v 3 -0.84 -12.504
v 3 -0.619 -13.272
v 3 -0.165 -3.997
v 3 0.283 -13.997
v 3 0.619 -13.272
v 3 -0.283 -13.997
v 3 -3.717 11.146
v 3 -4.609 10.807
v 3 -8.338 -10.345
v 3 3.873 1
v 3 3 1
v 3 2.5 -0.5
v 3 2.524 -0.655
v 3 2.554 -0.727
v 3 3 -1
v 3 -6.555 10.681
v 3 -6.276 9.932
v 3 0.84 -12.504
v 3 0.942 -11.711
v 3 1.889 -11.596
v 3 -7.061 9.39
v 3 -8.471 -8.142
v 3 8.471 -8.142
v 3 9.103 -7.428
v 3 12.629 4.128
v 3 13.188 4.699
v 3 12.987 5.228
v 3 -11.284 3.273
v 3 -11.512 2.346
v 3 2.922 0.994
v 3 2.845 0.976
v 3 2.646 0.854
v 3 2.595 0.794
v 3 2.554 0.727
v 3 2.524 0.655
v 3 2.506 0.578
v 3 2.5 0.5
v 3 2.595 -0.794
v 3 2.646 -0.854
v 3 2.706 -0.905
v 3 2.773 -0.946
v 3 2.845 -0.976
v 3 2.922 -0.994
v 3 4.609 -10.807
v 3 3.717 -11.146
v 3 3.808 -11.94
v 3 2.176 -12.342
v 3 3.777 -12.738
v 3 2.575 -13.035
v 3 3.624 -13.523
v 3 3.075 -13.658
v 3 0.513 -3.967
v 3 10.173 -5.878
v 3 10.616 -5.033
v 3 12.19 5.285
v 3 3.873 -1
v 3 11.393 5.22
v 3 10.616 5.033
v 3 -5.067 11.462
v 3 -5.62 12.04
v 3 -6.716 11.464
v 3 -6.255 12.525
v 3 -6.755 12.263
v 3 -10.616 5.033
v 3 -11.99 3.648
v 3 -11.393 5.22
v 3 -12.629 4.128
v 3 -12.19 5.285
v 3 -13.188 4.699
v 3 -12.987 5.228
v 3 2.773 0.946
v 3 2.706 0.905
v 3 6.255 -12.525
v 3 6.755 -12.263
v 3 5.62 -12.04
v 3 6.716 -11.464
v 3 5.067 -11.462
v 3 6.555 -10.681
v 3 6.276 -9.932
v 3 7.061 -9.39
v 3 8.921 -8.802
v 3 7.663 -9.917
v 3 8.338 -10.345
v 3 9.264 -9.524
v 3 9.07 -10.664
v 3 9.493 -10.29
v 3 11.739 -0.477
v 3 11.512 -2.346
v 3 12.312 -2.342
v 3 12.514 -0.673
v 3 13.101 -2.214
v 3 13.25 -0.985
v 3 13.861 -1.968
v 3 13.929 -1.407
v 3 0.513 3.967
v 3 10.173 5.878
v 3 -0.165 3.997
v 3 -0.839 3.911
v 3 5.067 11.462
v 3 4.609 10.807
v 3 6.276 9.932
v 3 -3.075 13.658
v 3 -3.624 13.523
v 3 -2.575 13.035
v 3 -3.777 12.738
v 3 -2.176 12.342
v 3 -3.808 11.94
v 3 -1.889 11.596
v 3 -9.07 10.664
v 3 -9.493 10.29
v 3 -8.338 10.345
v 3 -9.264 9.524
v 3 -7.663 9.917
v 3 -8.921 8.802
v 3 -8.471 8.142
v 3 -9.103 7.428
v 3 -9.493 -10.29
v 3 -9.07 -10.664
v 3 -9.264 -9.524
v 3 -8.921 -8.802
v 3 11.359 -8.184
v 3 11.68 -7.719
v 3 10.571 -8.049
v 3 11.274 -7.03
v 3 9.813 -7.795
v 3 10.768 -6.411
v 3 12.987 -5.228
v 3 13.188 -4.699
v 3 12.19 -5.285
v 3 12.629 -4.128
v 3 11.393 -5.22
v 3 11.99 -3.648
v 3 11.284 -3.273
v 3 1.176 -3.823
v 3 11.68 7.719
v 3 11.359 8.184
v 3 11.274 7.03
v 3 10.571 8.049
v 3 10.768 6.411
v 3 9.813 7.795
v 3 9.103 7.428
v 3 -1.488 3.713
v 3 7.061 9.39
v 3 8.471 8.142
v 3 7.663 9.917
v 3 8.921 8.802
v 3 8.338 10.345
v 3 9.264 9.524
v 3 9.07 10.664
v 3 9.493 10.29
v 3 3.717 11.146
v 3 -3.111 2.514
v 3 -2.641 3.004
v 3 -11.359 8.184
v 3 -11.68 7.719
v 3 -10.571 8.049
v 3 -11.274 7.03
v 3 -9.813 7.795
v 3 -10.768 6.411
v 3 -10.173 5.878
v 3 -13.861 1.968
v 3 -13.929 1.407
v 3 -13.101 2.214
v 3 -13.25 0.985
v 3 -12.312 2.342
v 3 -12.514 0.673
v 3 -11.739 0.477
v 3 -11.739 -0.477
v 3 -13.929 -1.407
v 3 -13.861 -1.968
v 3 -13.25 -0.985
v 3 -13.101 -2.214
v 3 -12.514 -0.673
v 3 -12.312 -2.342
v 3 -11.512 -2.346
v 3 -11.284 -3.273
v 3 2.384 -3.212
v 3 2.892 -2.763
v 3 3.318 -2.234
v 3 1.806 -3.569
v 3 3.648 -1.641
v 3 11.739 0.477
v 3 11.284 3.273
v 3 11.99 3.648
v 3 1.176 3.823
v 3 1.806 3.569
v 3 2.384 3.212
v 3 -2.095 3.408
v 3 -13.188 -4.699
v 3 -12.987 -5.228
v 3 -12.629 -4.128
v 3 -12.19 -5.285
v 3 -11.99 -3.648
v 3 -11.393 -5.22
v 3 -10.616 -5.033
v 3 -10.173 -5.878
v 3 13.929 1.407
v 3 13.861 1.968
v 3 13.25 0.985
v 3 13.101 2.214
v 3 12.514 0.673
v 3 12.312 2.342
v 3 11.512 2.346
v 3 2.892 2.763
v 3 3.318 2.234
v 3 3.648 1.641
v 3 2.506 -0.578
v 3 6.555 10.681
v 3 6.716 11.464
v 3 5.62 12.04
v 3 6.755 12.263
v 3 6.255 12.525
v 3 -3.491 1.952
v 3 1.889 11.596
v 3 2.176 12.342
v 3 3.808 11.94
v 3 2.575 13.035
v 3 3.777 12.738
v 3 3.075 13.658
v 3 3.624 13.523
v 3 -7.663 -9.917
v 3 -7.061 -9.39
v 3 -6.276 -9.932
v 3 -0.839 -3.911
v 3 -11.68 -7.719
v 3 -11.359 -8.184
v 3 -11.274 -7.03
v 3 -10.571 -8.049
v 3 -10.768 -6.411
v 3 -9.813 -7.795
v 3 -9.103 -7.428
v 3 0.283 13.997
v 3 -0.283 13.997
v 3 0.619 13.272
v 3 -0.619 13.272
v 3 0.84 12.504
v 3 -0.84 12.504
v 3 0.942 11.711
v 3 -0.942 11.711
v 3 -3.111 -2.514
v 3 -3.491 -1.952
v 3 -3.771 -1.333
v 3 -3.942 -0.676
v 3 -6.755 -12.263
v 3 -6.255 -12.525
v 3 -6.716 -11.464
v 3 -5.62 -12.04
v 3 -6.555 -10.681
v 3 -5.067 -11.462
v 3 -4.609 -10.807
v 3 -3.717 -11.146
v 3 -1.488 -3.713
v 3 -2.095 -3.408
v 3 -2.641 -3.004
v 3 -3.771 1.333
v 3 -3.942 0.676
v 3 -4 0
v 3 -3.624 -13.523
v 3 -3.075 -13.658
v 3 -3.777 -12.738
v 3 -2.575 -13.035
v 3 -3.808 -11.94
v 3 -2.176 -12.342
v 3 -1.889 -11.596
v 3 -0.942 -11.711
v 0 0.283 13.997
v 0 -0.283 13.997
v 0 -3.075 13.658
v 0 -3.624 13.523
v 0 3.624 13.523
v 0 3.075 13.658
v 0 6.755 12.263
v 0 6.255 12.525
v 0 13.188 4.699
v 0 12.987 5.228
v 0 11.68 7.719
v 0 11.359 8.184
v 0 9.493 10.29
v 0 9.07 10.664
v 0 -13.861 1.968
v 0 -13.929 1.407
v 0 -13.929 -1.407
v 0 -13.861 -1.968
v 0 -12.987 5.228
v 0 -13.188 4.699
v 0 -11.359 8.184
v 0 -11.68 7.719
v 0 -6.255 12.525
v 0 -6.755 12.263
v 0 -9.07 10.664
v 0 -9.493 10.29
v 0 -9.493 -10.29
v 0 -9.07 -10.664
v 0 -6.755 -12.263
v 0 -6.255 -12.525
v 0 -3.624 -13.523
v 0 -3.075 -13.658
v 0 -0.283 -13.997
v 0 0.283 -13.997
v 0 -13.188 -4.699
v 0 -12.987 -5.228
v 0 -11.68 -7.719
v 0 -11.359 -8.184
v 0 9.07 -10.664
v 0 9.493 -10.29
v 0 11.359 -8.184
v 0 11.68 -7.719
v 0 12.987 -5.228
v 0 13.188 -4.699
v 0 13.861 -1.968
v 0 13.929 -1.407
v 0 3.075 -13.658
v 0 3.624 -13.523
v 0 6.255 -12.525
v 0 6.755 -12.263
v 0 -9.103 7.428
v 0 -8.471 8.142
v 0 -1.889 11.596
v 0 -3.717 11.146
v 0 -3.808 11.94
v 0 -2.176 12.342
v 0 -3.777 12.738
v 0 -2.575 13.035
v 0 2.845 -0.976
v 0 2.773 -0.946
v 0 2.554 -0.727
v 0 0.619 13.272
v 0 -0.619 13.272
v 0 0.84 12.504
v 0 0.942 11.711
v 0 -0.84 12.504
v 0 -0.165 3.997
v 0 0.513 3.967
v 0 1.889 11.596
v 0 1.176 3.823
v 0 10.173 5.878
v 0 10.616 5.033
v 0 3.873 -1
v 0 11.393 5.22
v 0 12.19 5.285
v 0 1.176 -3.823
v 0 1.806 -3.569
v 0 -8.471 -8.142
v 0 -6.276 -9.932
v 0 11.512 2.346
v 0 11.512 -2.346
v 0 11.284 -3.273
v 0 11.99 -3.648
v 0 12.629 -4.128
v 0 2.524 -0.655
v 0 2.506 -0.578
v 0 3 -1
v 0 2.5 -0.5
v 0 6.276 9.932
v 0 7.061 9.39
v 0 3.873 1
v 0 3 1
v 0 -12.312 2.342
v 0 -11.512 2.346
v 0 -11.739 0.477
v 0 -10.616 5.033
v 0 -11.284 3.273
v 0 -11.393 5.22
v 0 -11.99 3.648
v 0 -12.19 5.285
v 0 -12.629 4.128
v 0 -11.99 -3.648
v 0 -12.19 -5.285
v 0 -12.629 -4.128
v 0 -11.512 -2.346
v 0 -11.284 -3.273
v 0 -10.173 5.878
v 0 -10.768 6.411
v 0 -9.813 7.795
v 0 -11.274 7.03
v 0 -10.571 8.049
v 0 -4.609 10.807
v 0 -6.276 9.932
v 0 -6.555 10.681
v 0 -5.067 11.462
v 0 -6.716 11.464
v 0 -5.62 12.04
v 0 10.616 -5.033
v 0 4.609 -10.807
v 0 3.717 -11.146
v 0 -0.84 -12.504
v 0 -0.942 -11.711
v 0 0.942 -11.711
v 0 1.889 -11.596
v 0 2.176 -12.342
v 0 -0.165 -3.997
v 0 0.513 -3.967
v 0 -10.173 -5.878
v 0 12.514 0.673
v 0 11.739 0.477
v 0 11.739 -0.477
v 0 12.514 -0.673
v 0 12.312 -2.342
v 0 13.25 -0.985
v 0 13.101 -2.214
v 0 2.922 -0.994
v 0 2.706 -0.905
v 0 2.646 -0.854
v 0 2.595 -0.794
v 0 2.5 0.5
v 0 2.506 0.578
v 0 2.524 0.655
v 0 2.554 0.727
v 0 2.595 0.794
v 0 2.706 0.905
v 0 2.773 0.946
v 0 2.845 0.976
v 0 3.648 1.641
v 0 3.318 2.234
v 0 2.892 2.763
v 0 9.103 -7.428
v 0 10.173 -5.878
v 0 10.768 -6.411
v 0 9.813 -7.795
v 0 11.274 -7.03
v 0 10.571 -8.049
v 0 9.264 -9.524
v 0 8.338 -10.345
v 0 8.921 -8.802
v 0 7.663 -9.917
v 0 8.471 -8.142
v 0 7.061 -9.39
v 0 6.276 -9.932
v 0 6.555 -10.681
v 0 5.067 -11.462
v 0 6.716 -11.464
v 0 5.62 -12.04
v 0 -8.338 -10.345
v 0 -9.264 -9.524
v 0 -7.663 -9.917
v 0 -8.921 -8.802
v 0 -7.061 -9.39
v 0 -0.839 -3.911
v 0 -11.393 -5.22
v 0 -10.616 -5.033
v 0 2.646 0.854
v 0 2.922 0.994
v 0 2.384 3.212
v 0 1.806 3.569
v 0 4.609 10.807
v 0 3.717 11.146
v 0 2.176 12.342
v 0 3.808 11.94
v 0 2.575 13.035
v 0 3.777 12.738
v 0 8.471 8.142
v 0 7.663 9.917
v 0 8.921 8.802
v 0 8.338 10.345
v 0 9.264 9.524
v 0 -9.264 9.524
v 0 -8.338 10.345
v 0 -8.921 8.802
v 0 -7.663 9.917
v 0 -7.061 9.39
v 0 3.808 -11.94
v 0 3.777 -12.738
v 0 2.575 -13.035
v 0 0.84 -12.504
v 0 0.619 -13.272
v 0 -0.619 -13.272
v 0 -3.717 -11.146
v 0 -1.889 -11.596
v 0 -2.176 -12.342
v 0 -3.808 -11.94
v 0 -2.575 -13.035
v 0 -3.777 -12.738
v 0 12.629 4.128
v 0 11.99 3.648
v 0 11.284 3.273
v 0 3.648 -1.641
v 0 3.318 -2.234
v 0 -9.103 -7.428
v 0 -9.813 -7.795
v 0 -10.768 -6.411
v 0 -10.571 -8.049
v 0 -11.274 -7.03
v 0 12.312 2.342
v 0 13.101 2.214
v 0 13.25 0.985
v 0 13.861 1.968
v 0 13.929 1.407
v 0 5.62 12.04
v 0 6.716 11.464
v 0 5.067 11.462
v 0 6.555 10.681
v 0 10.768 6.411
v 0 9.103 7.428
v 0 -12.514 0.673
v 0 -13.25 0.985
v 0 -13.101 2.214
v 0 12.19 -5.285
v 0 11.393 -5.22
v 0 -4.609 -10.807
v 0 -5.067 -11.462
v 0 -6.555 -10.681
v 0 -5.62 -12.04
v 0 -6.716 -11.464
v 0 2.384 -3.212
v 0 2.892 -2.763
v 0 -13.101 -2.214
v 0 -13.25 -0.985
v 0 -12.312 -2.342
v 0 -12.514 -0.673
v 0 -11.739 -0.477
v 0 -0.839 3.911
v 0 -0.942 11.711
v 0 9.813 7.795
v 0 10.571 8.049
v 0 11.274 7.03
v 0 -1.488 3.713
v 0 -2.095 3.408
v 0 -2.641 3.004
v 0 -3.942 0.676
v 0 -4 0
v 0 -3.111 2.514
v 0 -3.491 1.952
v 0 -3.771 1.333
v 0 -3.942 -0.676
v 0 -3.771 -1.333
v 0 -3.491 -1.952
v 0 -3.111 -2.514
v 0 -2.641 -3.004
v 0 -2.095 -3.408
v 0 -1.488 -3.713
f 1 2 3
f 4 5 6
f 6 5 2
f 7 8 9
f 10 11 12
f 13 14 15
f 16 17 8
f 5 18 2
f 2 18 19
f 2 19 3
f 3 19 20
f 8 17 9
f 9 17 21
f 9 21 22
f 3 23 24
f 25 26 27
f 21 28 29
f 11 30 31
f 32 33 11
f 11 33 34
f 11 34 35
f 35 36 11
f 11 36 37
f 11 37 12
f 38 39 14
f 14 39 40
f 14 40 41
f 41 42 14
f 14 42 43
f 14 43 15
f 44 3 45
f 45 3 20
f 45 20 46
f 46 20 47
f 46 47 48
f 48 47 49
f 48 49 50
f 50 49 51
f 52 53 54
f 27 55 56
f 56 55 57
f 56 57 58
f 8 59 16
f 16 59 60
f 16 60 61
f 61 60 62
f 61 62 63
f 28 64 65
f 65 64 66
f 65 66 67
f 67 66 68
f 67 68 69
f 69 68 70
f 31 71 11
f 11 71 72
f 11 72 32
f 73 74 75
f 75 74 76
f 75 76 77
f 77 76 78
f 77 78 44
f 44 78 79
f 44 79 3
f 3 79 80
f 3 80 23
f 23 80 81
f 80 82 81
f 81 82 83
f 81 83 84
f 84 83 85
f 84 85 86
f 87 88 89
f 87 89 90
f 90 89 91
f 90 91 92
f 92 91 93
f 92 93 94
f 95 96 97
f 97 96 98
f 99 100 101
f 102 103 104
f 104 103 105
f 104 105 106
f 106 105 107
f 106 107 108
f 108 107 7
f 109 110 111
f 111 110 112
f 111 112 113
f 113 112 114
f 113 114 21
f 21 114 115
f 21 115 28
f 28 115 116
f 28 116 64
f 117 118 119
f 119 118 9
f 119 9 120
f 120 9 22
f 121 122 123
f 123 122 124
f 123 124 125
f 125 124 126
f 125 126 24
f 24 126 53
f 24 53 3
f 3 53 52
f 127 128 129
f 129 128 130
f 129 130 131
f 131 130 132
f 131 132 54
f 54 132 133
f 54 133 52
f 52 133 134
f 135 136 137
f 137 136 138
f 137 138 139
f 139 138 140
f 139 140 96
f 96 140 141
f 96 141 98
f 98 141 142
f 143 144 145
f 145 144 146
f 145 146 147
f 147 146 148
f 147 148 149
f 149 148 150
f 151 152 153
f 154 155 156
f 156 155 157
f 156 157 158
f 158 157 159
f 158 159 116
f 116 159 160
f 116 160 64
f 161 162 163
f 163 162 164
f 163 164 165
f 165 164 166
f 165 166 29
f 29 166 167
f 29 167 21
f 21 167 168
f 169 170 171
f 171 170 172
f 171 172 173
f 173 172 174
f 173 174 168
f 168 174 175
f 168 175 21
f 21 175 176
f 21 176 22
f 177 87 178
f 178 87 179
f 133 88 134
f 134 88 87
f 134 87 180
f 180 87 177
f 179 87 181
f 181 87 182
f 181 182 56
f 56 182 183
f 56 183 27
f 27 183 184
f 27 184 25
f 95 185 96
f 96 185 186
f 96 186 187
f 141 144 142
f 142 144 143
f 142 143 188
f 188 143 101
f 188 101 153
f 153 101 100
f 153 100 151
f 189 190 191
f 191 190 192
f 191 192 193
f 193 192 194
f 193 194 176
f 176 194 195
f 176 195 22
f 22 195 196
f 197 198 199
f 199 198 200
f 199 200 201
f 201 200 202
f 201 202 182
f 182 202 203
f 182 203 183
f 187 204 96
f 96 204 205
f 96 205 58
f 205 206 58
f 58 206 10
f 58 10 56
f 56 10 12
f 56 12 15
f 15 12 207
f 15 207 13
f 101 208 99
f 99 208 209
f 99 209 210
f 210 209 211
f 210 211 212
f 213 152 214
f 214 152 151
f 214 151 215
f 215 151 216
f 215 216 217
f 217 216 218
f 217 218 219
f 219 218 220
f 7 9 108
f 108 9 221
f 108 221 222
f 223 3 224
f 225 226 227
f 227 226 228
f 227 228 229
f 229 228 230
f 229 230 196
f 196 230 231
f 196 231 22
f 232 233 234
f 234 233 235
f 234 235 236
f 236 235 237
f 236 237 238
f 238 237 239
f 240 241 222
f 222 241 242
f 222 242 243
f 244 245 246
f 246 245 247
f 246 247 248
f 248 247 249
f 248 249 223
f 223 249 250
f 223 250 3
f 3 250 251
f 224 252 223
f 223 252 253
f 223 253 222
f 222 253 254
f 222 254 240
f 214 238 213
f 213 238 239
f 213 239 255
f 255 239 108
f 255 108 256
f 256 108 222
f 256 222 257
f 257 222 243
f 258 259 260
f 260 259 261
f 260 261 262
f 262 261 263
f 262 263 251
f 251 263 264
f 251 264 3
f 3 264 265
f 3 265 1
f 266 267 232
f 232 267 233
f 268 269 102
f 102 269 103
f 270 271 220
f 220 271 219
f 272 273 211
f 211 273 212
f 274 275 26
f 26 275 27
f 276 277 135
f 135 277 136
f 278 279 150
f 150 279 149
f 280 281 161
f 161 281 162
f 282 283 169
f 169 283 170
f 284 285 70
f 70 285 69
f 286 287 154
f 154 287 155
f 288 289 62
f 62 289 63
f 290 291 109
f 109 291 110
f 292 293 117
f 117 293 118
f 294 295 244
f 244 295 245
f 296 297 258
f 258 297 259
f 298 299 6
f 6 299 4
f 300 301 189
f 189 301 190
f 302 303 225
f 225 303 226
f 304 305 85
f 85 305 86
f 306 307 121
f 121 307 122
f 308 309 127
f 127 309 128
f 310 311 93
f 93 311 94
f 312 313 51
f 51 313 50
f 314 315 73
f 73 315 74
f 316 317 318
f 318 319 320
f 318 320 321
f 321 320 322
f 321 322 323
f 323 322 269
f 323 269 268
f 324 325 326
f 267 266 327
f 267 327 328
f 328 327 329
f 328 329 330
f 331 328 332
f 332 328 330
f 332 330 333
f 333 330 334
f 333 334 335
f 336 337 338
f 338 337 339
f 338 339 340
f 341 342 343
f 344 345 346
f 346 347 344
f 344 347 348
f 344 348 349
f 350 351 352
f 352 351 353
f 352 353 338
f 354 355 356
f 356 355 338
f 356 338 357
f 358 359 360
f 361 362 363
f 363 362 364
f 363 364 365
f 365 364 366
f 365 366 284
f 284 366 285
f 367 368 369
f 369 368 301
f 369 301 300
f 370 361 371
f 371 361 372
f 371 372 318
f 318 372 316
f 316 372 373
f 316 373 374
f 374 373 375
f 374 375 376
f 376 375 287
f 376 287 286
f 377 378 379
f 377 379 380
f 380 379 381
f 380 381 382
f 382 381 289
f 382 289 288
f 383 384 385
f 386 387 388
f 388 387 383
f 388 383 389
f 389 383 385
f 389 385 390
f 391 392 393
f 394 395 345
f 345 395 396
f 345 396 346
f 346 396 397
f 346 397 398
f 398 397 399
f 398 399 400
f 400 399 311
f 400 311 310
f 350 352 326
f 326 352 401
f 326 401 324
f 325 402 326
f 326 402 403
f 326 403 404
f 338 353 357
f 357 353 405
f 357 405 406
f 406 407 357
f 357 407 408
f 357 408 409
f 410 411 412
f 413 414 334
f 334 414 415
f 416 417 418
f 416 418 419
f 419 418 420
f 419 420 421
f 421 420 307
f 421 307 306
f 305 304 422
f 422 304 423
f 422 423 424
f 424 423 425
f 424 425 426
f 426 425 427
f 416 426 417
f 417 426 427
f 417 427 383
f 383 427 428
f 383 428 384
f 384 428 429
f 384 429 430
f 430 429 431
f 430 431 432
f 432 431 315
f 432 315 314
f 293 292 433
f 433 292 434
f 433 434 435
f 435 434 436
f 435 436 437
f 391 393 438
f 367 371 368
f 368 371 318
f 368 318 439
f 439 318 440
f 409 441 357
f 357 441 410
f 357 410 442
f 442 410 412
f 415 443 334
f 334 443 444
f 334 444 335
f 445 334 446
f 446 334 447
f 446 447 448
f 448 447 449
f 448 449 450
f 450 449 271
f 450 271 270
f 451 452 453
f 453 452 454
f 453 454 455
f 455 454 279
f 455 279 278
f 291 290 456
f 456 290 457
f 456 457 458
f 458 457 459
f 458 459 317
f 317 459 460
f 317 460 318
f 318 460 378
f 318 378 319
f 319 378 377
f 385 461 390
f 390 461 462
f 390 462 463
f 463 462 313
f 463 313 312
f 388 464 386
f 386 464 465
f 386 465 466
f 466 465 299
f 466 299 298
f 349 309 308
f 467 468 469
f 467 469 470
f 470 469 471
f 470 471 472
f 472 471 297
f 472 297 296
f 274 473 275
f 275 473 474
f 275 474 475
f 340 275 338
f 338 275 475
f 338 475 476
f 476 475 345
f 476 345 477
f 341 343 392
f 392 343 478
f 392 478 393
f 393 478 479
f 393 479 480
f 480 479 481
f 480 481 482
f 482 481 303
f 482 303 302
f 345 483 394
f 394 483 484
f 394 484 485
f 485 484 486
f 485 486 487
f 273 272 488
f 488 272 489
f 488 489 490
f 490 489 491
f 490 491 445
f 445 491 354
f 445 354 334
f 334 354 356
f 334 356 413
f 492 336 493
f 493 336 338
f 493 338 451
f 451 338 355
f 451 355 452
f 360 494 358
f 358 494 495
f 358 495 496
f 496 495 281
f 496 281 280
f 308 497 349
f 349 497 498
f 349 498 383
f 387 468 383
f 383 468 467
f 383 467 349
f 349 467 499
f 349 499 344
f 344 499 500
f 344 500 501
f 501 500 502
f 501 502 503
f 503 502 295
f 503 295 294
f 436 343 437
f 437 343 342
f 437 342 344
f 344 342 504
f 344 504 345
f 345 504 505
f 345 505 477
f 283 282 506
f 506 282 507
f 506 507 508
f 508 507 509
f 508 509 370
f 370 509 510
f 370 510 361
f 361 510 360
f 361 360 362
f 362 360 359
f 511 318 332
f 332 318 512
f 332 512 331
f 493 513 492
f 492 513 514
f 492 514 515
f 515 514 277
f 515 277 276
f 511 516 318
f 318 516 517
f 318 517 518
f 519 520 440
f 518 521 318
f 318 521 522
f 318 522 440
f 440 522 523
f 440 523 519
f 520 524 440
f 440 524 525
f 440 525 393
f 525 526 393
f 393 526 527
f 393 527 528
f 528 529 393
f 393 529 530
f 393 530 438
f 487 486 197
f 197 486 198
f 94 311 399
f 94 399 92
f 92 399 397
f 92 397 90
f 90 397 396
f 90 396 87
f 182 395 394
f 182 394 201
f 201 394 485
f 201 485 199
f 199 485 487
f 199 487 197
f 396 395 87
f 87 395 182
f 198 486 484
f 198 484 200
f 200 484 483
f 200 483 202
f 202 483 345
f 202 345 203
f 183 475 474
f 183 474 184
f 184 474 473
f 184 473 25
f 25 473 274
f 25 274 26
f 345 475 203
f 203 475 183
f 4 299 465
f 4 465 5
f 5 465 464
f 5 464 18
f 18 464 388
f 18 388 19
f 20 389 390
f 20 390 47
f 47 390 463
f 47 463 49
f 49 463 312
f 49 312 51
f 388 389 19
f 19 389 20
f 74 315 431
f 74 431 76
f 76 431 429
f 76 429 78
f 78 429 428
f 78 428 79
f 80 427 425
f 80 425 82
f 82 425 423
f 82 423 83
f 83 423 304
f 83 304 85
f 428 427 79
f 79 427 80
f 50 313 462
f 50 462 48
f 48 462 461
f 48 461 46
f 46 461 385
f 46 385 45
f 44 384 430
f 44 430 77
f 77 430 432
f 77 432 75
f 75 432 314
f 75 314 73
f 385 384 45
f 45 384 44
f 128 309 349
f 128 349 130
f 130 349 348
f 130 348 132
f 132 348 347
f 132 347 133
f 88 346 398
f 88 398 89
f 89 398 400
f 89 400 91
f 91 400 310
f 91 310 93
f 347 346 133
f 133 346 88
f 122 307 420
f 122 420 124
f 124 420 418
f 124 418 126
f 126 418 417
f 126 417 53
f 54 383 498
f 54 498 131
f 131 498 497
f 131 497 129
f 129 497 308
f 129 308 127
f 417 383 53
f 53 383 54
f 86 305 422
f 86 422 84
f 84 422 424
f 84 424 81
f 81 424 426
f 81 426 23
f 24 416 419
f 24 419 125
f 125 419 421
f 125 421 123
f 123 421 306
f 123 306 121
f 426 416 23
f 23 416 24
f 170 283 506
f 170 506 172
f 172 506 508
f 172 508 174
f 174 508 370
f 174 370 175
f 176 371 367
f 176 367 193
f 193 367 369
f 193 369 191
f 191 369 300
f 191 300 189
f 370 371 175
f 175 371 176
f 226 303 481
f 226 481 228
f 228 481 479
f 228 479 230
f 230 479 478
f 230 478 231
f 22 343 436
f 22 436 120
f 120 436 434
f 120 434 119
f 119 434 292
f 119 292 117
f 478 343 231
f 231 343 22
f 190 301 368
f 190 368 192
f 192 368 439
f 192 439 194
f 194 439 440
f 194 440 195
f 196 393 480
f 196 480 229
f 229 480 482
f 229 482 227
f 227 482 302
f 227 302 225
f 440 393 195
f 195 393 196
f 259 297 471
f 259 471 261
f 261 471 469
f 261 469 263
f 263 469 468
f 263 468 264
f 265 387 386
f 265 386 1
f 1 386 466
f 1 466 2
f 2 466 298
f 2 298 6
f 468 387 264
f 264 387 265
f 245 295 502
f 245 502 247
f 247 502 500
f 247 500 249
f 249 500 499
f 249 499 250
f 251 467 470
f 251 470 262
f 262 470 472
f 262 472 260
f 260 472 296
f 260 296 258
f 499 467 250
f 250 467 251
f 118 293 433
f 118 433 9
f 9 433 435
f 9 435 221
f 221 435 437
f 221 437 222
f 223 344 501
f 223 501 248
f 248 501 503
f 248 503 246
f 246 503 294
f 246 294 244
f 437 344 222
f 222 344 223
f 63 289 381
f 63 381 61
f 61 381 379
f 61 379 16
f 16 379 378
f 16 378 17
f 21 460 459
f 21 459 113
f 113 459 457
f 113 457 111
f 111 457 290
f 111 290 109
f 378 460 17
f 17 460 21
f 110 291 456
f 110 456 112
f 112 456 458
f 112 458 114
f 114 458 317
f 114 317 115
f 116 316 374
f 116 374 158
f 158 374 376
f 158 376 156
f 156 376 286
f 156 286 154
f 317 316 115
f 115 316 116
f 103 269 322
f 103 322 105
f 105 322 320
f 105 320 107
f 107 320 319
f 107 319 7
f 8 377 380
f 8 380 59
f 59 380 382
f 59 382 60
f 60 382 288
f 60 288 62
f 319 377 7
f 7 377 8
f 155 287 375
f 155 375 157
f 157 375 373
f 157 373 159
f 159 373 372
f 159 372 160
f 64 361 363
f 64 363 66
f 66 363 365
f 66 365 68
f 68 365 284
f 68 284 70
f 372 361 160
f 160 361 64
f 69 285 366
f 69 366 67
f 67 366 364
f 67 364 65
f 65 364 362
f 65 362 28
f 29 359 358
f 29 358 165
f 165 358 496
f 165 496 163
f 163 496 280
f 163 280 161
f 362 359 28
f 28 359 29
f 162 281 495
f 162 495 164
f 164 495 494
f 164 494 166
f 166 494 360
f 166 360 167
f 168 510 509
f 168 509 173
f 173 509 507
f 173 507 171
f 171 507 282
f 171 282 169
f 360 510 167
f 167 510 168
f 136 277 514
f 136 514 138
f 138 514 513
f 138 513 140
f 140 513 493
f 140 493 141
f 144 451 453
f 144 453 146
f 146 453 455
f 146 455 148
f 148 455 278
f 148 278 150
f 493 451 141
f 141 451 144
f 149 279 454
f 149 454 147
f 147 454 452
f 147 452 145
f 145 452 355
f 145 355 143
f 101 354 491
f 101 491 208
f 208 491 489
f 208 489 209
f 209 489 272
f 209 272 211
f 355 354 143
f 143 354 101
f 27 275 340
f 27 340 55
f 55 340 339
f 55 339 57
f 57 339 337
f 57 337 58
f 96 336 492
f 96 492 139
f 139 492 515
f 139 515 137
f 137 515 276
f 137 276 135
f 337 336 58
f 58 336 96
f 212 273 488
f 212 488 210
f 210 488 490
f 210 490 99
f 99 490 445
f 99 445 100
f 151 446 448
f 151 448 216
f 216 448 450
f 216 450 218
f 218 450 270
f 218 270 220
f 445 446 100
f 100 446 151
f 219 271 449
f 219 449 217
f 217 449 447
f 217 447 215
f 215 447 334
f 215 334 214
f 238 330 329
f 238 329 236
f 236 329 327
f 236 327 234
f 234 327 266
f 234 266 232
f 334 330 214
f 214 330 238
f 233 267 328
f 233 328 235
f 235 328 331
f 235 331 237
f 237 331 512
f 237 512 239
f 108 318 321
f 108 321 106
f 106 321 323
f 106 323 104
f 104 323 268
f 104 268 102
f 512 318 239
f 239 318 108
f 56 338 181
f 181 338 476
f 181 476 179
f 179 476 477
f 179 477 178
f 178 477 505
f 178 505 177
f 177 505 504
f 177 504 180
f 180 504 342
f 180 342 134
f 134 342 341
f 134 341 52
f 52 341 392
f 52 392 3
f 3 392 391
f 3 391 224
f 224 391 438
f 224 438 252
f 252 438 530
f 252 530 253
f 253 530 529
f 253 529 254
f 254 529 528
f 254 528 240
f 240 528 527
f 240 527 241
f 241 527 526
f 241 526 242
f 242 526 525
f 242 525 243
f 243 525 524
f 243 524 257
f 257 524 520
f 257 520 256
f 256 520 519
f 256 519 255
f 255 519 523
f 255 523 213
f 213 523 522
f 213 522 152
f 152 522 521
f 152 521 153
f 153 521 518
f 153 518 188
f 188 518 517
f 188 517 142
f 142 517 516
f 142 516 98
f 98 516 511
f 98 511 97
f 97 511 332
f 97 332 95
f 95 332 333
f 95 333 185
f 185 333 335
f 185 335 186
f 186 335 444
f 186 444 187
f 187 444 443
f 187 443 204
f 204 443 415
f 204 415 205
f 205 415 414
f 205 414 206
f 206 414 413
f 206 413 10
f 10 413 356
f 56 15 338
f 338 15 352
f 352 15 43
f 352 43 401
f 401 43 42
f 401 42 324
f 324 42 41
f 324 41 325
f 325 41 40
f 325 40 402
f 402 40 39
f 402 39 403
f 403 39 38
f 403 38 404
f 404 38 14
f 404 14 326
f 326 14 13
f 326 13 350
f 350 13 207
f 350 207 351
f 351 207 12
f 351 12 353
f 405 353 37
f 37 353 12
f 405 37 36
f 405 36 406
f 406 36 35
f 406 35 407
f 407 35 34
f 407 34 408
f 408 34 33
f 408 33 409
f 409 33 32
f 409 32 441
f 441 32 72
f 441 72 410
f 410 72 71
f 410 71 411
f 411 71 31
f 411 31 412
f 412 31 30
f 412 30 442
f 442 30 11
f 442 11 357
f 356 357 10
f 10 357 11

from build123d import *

# Parameters (mm, degrees)
BASPROSKE_W                 = 3
BASPROSKE_H                 = 14
TOOTHCUT_DEPTH              = 21.024984395
TEETHCUTS_COUNT             = 26
TEETHCUTS_ANGLE             = 346.153846154
BORSKE_R                    = 4
BORE_DEPTH                  = 50.0000508
DODANIE_WYCI_GNI_CIE1_DEPTH = 3


with BuildPart() as part:
    # BasProSke → Base-Revolve (revolve)
    with BuildSketch(Plane(origin=(0, 0, 0), x_dir=(1, 0, 0), z_dir=(0, 1, 0)), mode=Mode.PRIVATE) as base_revolve_sk:
        with Locations((1.5, 7)):
            Rectangle(BASPROSKE_W, BASPROSKE_H)
    revolve(base_revolve_sk.sketch.rotate(Axis((-10, 0, 0), (1, 0, 0)), 180), axis=Axis((-10, 0, 0), (1, 0, 0)))

    # TooCutSke → ToothCut (cut, through all)
    with BuildSketch(Plane(origin=(0, 0, 0), x_dir=(0, 0, -1), z_dir=(1, 0, 0))):
        with BuildLine():
            ThreePointArc((0.476965065, 11.739314517), (0, 11.749), (-0.476965065, 11.739314517))
            ThreePointArc((-0.476965065, 11.739314517), (-0.82065865, 12.901686978), (-1.424117301, 13.952911348))
            ThreePointArc((-1.424117301, 13.952911348), (0, 14.0254), (1.424117301, 13.952911348))
            ThreePointArc((1.424117301, 13.952911348), (0.82065865, 12.901686978), (0.476965065, 11.739314517))
        make_face()
    toothcut = extrude(amount=TOOTHCUT_DEPTH, mode=Mode.SUBTRACT)

    # TeethCuts: ToothCut ×26 about axis
    teethcuts_axis = Axis((-10, 0, 0), (1, 0, 0))
    for i in range(1, TEETHCUTS_COUNT):
        add(toothcut.rotate(teethcuts_axis, i * TEETHCUTS_ANGLE / (TEETHCUTS_COUNT - 1)), mode=Mode.SUBTRACT)

    # BorSke → Bore (cut, symmetric)
    with BuildSketch(Plane(origin=(0, 0, 0), x_dir=(0, 0, -1), z_dir=(1, 0, 0))):
        with Locations(Location((0, 0, 0), (0, 0, 180))):
            Circle(BORSKE_R)
    extrude(amount=BORE_DEPTH, both=True, mode=Mode.SUBTRACT)

    # Szkic1 → Dodanie-wyciągnięcie1 (add)
    with BuildSketch(Plane(origin=(3, 0, 0), x_dir=(0, 0, -1), z_dir=(1, 0, 0))):
        with BuildLine():
            Line((0, 4), (-1, 4))
            Line((-1, 4), (-1, 3))
            ThreePointArc((-1, 3), (-0.853553391, 2.646446609), (-0.5, 2.5))
            Line((-0.5, 2.5), (0.5, 2.5))
            ThreePointArc((0.5, 2.5), (0.853553391, 2.646446609), (1, 3))
            Line((1, 3), (1, 4))
            Line((1, 4), (0, 4))
        make_face()
    extrude(amount=-DODANIE_WYCI_GNI_CIE1_DEPTH)


solid = part.part
